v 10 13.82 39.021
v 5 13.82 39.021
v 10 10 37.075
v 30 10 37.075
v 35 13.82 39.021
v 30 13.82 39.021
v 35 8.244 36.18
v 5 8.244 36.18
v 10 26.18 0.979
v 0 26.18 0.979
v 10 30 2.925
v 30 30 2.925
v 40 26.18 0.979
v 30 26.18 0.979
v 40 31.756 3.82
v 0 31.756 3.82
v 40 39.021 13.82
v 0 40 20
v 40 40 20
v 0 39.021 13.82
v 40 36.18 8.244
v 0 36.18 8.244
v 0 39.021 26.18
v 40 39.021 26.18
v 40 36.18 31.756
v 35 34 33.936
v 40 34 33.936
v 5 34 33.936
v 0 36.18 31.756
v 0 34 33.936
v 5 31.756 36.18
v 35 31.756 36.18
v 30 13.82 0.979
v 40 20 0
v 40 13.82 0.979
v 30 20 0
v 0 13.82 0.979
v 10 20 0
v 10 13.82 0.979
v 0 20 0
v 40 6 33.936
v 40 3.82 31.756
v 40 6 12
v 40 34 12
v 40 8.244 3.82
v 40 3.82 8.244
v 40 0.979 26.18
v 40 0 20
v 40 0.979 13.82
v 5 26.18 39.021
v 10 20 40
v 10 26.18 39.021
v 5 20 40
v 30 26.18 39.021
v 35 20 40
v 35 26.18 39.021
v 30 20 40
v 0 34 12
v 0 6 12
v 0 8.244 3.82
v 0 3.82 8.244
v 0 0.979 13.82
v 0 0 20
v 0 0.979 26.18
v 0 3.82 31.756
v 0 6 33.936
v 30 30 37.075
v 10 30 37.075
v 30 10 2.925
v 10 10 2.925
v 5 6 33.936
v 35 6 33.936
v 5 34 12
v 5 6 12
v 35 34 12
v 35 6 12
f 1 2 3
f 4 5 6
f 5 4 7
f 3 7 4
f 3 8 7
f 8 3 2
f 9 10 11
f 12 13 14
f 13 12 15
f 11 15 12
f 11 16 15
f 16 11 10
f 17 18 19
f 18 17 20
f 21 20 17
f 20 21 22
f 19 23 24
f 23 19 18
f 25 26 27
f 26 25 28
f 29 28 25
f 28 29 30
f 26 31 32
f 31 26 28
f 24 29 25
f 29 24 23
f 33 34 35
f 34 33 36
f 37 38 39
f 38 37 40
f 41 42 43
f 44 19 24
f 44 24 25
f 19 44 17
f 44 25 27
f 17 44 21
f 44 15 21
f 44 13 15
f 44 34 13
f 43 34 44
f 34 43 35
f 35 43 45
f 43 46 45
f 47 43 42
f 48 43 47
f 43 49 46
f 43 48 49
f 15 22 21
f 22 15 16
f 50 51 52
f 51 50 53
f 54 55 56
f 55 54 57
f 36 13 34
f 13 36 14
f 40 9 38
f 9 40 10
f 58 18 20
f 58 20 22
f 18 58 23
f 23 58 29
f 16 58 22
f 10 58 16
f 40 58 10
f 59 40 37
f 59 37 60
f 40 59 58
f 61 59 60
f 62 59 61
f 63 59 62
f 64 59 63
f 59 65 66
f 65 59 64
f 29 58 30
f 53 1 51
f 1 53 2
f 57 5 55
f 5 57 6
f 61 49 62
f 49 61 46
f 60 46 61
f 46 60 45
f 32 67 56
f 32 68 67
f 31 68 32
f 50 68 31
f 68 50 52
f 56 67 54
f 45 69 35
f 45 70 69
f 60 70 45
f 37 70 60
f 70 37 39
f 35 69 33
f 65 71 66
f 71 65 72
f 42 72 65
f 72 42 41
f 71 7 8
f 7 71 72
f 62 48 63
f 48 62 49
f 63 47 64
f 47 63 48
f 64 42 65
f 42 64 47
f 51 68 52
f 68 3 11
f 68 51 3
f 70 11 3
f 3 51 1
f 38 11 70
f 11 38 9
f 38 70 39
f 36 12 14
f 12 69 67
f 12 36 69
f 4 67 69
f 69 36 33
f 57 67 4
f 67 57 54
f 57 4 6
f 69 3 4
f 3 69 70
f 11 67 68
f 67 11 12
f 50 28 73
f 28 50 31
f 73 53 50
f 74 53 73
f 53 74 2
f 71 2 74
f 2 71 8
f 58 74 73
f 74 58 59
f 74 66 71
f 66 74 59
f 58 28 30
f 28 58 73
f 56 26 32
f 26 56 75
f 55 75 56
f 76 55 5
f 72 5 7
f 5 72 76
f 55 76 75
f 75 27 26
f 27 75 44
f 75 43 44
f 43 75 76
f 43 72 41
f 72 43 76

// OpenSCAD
length = 40;
diameter = 40;
pillarHoleSide = 20;
notchWidth = diameter * .7;
notchHeight = notchWidth;
notchDepth = 5;

$fn = 20;
difference() {
    translate([0, diameter/2, diameter/2])
        rotate([0, 90, 0])
            cylinder(h = length, d = diameter);
    translate([length / 2 - pillarHoleSide/2, diameter / 2 - pillarHoleSide/2, 0])
        cube([pillarHoleSide, pillarHoleSide, 100]);
    translate([0, diameter * .3 * .5, diameter * .3])
        cube([notchDepth, notchWidth, notchHeight]);
    translate([length - notchDepth, diameter * .3 * .5, diameter * .3])
        cube([notchDepth, notchWidth, notchHeight]);
}
